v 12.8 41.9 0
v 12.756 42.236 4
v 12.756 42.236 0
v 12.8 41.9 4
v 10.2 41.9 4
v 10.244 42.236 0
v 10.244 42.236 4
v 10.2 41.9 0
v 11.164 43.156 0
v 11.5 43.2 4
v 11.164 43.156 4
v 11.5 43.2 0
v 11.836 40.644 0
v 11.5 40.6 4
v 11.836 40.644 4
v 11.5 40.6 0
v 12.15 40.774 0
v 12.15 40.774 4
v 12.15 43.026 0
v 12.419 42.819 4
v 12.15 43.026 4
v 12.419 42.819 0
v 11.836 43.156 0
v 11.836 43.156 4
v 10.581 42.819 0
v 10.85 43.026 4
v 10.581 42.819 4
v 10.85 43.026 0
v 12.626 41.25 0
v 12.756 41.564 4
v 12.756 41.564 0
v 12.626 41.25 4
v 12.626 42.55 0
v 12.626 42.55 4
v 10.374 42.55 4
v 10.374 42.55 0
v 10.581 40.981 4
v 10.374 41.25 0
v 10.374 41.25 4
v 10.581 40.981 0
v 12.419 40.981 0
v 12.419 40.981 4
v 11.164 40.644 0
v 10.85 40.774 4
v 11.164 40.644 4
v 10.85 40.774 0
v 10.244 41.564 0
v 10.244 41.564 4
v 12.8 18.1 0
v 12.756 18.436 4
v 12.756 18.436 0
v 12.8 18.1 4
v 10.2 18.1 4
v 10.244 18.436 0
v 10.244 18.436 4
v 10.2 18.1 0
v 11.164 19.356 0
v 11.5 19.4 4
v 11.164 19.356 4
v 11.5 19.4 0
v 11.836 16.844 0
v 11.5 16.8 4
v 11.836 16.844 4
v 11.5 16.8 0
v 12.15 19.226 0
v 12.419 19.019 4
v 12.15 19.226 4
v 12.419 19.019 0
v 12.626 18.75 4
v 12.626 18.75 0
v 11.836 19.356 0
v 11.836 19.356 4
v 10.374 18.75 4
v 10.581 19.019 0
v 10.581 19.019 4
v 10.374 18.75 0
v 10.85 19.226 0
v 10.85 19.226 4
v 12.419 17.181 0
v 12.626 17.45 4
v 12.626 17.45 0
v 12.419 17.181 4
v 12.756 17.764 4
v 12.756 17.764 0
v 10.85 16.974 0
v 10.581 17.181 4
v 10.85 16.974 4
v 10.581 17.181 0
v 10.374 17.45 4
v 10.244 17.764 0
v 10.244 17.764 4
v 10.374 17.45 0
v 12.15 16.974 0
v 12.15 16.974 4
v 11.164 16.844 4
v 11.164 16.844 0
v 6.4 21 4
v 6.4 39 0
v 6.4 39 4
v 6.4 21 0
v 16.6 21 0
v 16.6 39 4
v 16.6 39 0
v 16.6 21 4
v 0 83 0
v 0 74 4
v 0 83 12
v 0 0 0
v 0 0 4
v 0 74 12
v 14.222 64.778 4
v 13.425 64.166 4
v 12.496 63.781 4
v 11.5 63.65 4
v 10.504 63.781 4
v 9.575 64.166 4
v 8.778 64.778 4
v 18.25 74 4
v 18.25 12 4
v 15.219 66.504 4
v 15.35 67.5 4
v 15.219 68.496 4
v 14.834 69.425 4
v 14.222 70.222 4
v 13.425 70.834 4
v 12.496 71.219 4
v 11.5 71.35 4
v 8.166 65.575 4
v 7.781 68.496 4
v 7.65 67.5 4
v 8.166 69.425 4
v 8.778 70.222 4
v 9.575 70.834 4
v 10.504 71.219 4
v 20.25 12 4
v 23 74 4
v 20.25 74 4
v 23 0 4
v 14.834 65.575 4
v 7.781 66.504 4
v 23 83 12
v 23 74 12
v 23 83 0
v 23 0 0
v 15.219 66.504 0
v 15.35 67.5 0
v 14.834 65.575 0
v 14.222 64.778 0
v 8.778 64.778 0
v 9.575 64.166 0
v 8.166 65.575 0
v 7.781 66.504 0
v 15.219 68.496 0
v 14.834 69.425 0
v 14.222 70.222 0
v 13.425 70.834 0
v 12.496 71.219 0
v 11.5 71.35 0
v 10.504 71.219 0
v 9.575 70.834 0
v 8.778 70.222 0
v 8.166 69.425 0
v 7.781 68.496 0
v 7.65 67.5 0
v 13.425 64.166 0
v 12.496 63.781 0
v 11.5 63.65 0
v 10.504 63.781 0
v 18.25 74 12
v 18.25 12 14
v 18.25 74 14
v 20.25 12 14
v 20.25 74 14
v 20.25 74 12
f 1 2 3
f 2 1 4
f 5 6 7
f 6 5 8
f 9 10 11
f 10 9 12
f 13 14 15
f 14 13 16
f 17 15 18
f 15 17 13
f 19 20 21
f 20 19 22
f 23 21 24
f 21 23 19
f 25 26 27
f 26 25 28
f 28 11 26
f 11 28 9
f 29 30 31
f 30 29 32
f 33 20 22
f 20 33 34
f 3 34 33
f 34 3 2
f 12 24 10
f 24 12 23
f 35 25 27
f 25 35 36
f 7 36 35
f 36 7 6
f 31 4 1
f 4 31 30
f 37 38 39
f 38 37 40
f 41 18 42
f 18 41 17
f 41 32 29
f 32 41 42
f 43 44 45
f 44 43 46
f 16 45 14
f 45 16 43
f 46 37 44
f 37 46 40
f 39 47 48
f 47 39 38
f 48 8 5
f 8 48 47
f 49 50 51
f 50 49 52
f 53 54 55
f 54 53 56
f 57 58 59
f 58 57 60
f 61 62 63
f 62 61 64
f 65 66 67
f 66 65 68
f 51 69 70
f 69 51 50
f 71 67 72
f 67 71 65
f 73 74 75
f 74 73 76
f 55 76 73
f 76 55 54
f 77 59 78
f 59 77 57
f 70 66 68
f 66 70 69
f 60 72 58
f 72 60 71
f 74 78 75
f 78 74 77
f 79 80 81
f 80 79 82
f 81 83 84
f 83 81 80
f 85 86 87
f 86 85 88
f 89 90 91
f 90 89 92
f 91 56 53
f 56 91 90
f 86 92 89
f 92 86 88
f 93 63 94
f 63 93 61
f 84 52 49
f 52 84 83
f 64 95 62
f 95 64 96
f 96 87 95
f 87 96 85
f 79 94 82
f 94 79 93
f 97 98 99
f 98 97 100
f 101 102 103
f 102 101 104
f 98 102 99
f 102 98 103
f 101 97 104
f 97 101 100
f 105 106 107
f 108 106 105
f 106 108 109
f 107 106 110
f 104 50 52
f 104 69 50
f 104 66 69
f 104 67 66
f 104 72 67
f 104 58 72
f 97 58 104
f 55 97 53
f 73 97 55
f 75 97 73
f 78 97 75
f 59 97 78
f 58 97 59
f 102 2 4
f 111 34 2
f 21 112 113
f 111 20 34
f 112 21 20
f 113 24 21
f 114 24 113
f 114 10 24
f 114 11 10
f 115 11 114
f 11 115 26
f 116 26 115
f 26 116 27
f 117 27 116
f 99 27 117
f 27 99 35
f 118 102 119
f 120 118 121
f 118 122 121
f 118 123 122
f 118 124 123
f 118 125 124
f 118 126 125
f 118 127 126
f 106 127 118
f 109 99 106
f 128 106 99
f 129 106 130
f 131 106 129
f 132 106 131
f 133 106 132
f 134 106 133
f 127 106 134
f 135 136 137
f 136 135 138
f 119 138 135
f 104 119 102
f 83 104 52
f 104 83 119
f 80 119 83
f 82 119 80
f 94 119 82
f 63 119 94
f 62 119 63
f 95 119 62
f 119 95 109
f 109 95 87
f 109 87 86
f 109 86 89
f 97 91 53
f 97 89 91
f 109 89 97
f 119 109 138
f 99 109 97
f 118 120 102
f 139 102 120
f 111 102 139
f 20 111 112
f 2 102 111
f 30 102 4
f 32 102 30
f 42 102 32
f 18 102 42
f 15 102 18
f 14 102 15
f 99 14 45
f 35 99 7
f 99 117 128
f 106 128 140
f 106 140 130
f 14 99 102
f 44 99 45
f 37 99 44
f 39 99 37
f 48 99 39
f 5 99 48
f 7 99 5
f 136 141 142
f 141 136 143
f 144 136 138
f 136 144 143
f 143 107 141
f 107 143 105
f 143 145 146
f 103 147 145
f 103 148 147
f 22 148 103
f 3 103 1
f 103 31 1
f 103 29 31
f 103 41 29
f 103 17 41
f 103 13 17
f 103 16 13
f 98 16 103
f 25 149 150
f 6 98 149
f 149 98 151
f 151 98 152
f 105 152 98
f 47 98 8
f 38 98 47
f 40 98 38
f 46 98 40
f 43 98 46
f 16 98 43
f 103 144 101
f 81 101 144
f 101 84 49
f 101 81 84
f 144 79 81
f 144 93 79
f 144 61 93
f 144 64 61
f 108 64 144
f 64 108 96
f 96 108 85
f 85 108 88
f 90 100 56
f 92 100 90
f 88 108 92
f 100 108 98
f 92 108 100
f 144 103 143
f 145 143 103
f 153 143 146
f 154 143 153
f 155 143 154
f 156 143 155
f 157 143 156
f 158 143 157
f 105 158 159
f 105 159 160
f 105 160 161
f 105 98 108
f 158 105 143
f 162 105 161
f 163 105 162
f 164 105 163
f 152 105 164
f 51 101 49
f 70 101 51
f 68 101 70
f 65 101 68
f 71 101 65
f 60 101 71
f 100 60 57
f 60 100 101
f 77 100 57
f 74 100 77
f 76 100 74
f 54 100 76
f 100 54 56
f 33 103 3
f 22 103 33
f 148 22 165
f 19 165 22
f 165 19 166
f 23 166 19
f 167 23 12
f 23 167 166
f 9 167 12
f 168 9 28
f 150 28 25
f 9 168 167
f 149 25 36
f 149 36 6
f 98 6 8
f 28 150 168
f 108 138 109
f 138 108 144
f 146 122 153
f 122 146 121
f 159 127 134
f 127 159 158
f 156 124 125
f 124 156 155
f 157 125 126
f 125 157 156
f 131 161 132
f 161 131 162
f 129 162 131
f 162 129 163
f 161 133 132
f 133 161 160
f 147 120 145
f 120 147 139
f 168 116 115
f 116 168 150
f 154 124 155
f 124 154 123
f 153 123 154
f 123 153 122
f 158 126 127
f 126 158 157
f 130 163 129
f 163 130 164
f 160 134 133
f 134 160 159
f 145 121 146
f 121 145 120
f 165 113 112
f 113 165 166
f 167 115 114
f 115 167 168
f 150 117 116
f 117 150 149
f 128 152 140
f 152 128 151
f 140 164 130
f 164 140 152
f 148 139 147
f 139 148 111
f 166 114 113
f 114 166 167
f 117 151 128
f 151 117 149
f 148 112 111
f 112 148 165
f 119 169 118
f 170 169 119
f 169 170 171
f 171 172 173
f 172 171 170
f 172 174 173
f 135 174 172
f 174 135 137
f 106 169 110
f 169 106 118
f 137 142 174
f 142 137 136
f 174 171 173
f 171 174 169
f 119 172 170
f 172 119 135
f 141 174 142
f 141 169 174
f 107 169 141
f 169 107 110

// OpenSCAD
$fn=24;

panelSize=[23,83,4];

caseHoles=[[17,43],[52,83]];
caseHoleWidth=13.5;
switchSize=[10.2,18,50];
switchHoleDia=2.6;
switchHoleSpace=23.8;

powerDia = 7.7;

bottomSupportThickness=2;
bottomSupportPos=[panelSize[0]/2+caseHoleWidth/2,caseHoles[0][0]-5,panelSize[2]];

topSupportDepth=12;
topSupportSize=9;

module panel()
{
	difference() {
		cube(panelSize);
		switchHole();
		powerHole();
	}

bottomSupport();
topSupport();
}

module topSupport()
{	
	translate([0,panelSize[1]-topSupportSize,0])
	cube([panelSize[0],topSupportSize,topSupportDepth]);
}

module bottomSupport()
{

	translate(bottomSupportPos)
	cube([2,panelSize[1]-bottomSupportPos[1]-topSupportSize,10]);
};

module switchHole()
{
	pos=(caseHoles[0][1]-caseHoles[0][0])/2+caseHoles[0][0]-switchSize[1]/2;

	translate([
		panelSize[0]/2-switchSize[0]/2,
		pos,
		-25
	])
	cube(switchSize);

	for(side = [-1:2:1]) {
		translate([
			panelSize[0]/2,
			(caseHoles[0][1]-caseHoles[0][0])/2+caseHoles[0][0]-(switchHoleSpace/2*side),
			-panelSize[2]
		])
		cylinder(r=switchHoleDia/2,panelSize[2]*3);
	}
}


module powerHole()
{
	translate([
		panelSize[0]/2,
		(caseHoles[1][1]-caseHoles[1][0])/2+caseHoles[1][0],
		-panelSize[2]
	])

	cylinder(r=powerDia/2,h=panelSize[2]*3);
}

panel();
